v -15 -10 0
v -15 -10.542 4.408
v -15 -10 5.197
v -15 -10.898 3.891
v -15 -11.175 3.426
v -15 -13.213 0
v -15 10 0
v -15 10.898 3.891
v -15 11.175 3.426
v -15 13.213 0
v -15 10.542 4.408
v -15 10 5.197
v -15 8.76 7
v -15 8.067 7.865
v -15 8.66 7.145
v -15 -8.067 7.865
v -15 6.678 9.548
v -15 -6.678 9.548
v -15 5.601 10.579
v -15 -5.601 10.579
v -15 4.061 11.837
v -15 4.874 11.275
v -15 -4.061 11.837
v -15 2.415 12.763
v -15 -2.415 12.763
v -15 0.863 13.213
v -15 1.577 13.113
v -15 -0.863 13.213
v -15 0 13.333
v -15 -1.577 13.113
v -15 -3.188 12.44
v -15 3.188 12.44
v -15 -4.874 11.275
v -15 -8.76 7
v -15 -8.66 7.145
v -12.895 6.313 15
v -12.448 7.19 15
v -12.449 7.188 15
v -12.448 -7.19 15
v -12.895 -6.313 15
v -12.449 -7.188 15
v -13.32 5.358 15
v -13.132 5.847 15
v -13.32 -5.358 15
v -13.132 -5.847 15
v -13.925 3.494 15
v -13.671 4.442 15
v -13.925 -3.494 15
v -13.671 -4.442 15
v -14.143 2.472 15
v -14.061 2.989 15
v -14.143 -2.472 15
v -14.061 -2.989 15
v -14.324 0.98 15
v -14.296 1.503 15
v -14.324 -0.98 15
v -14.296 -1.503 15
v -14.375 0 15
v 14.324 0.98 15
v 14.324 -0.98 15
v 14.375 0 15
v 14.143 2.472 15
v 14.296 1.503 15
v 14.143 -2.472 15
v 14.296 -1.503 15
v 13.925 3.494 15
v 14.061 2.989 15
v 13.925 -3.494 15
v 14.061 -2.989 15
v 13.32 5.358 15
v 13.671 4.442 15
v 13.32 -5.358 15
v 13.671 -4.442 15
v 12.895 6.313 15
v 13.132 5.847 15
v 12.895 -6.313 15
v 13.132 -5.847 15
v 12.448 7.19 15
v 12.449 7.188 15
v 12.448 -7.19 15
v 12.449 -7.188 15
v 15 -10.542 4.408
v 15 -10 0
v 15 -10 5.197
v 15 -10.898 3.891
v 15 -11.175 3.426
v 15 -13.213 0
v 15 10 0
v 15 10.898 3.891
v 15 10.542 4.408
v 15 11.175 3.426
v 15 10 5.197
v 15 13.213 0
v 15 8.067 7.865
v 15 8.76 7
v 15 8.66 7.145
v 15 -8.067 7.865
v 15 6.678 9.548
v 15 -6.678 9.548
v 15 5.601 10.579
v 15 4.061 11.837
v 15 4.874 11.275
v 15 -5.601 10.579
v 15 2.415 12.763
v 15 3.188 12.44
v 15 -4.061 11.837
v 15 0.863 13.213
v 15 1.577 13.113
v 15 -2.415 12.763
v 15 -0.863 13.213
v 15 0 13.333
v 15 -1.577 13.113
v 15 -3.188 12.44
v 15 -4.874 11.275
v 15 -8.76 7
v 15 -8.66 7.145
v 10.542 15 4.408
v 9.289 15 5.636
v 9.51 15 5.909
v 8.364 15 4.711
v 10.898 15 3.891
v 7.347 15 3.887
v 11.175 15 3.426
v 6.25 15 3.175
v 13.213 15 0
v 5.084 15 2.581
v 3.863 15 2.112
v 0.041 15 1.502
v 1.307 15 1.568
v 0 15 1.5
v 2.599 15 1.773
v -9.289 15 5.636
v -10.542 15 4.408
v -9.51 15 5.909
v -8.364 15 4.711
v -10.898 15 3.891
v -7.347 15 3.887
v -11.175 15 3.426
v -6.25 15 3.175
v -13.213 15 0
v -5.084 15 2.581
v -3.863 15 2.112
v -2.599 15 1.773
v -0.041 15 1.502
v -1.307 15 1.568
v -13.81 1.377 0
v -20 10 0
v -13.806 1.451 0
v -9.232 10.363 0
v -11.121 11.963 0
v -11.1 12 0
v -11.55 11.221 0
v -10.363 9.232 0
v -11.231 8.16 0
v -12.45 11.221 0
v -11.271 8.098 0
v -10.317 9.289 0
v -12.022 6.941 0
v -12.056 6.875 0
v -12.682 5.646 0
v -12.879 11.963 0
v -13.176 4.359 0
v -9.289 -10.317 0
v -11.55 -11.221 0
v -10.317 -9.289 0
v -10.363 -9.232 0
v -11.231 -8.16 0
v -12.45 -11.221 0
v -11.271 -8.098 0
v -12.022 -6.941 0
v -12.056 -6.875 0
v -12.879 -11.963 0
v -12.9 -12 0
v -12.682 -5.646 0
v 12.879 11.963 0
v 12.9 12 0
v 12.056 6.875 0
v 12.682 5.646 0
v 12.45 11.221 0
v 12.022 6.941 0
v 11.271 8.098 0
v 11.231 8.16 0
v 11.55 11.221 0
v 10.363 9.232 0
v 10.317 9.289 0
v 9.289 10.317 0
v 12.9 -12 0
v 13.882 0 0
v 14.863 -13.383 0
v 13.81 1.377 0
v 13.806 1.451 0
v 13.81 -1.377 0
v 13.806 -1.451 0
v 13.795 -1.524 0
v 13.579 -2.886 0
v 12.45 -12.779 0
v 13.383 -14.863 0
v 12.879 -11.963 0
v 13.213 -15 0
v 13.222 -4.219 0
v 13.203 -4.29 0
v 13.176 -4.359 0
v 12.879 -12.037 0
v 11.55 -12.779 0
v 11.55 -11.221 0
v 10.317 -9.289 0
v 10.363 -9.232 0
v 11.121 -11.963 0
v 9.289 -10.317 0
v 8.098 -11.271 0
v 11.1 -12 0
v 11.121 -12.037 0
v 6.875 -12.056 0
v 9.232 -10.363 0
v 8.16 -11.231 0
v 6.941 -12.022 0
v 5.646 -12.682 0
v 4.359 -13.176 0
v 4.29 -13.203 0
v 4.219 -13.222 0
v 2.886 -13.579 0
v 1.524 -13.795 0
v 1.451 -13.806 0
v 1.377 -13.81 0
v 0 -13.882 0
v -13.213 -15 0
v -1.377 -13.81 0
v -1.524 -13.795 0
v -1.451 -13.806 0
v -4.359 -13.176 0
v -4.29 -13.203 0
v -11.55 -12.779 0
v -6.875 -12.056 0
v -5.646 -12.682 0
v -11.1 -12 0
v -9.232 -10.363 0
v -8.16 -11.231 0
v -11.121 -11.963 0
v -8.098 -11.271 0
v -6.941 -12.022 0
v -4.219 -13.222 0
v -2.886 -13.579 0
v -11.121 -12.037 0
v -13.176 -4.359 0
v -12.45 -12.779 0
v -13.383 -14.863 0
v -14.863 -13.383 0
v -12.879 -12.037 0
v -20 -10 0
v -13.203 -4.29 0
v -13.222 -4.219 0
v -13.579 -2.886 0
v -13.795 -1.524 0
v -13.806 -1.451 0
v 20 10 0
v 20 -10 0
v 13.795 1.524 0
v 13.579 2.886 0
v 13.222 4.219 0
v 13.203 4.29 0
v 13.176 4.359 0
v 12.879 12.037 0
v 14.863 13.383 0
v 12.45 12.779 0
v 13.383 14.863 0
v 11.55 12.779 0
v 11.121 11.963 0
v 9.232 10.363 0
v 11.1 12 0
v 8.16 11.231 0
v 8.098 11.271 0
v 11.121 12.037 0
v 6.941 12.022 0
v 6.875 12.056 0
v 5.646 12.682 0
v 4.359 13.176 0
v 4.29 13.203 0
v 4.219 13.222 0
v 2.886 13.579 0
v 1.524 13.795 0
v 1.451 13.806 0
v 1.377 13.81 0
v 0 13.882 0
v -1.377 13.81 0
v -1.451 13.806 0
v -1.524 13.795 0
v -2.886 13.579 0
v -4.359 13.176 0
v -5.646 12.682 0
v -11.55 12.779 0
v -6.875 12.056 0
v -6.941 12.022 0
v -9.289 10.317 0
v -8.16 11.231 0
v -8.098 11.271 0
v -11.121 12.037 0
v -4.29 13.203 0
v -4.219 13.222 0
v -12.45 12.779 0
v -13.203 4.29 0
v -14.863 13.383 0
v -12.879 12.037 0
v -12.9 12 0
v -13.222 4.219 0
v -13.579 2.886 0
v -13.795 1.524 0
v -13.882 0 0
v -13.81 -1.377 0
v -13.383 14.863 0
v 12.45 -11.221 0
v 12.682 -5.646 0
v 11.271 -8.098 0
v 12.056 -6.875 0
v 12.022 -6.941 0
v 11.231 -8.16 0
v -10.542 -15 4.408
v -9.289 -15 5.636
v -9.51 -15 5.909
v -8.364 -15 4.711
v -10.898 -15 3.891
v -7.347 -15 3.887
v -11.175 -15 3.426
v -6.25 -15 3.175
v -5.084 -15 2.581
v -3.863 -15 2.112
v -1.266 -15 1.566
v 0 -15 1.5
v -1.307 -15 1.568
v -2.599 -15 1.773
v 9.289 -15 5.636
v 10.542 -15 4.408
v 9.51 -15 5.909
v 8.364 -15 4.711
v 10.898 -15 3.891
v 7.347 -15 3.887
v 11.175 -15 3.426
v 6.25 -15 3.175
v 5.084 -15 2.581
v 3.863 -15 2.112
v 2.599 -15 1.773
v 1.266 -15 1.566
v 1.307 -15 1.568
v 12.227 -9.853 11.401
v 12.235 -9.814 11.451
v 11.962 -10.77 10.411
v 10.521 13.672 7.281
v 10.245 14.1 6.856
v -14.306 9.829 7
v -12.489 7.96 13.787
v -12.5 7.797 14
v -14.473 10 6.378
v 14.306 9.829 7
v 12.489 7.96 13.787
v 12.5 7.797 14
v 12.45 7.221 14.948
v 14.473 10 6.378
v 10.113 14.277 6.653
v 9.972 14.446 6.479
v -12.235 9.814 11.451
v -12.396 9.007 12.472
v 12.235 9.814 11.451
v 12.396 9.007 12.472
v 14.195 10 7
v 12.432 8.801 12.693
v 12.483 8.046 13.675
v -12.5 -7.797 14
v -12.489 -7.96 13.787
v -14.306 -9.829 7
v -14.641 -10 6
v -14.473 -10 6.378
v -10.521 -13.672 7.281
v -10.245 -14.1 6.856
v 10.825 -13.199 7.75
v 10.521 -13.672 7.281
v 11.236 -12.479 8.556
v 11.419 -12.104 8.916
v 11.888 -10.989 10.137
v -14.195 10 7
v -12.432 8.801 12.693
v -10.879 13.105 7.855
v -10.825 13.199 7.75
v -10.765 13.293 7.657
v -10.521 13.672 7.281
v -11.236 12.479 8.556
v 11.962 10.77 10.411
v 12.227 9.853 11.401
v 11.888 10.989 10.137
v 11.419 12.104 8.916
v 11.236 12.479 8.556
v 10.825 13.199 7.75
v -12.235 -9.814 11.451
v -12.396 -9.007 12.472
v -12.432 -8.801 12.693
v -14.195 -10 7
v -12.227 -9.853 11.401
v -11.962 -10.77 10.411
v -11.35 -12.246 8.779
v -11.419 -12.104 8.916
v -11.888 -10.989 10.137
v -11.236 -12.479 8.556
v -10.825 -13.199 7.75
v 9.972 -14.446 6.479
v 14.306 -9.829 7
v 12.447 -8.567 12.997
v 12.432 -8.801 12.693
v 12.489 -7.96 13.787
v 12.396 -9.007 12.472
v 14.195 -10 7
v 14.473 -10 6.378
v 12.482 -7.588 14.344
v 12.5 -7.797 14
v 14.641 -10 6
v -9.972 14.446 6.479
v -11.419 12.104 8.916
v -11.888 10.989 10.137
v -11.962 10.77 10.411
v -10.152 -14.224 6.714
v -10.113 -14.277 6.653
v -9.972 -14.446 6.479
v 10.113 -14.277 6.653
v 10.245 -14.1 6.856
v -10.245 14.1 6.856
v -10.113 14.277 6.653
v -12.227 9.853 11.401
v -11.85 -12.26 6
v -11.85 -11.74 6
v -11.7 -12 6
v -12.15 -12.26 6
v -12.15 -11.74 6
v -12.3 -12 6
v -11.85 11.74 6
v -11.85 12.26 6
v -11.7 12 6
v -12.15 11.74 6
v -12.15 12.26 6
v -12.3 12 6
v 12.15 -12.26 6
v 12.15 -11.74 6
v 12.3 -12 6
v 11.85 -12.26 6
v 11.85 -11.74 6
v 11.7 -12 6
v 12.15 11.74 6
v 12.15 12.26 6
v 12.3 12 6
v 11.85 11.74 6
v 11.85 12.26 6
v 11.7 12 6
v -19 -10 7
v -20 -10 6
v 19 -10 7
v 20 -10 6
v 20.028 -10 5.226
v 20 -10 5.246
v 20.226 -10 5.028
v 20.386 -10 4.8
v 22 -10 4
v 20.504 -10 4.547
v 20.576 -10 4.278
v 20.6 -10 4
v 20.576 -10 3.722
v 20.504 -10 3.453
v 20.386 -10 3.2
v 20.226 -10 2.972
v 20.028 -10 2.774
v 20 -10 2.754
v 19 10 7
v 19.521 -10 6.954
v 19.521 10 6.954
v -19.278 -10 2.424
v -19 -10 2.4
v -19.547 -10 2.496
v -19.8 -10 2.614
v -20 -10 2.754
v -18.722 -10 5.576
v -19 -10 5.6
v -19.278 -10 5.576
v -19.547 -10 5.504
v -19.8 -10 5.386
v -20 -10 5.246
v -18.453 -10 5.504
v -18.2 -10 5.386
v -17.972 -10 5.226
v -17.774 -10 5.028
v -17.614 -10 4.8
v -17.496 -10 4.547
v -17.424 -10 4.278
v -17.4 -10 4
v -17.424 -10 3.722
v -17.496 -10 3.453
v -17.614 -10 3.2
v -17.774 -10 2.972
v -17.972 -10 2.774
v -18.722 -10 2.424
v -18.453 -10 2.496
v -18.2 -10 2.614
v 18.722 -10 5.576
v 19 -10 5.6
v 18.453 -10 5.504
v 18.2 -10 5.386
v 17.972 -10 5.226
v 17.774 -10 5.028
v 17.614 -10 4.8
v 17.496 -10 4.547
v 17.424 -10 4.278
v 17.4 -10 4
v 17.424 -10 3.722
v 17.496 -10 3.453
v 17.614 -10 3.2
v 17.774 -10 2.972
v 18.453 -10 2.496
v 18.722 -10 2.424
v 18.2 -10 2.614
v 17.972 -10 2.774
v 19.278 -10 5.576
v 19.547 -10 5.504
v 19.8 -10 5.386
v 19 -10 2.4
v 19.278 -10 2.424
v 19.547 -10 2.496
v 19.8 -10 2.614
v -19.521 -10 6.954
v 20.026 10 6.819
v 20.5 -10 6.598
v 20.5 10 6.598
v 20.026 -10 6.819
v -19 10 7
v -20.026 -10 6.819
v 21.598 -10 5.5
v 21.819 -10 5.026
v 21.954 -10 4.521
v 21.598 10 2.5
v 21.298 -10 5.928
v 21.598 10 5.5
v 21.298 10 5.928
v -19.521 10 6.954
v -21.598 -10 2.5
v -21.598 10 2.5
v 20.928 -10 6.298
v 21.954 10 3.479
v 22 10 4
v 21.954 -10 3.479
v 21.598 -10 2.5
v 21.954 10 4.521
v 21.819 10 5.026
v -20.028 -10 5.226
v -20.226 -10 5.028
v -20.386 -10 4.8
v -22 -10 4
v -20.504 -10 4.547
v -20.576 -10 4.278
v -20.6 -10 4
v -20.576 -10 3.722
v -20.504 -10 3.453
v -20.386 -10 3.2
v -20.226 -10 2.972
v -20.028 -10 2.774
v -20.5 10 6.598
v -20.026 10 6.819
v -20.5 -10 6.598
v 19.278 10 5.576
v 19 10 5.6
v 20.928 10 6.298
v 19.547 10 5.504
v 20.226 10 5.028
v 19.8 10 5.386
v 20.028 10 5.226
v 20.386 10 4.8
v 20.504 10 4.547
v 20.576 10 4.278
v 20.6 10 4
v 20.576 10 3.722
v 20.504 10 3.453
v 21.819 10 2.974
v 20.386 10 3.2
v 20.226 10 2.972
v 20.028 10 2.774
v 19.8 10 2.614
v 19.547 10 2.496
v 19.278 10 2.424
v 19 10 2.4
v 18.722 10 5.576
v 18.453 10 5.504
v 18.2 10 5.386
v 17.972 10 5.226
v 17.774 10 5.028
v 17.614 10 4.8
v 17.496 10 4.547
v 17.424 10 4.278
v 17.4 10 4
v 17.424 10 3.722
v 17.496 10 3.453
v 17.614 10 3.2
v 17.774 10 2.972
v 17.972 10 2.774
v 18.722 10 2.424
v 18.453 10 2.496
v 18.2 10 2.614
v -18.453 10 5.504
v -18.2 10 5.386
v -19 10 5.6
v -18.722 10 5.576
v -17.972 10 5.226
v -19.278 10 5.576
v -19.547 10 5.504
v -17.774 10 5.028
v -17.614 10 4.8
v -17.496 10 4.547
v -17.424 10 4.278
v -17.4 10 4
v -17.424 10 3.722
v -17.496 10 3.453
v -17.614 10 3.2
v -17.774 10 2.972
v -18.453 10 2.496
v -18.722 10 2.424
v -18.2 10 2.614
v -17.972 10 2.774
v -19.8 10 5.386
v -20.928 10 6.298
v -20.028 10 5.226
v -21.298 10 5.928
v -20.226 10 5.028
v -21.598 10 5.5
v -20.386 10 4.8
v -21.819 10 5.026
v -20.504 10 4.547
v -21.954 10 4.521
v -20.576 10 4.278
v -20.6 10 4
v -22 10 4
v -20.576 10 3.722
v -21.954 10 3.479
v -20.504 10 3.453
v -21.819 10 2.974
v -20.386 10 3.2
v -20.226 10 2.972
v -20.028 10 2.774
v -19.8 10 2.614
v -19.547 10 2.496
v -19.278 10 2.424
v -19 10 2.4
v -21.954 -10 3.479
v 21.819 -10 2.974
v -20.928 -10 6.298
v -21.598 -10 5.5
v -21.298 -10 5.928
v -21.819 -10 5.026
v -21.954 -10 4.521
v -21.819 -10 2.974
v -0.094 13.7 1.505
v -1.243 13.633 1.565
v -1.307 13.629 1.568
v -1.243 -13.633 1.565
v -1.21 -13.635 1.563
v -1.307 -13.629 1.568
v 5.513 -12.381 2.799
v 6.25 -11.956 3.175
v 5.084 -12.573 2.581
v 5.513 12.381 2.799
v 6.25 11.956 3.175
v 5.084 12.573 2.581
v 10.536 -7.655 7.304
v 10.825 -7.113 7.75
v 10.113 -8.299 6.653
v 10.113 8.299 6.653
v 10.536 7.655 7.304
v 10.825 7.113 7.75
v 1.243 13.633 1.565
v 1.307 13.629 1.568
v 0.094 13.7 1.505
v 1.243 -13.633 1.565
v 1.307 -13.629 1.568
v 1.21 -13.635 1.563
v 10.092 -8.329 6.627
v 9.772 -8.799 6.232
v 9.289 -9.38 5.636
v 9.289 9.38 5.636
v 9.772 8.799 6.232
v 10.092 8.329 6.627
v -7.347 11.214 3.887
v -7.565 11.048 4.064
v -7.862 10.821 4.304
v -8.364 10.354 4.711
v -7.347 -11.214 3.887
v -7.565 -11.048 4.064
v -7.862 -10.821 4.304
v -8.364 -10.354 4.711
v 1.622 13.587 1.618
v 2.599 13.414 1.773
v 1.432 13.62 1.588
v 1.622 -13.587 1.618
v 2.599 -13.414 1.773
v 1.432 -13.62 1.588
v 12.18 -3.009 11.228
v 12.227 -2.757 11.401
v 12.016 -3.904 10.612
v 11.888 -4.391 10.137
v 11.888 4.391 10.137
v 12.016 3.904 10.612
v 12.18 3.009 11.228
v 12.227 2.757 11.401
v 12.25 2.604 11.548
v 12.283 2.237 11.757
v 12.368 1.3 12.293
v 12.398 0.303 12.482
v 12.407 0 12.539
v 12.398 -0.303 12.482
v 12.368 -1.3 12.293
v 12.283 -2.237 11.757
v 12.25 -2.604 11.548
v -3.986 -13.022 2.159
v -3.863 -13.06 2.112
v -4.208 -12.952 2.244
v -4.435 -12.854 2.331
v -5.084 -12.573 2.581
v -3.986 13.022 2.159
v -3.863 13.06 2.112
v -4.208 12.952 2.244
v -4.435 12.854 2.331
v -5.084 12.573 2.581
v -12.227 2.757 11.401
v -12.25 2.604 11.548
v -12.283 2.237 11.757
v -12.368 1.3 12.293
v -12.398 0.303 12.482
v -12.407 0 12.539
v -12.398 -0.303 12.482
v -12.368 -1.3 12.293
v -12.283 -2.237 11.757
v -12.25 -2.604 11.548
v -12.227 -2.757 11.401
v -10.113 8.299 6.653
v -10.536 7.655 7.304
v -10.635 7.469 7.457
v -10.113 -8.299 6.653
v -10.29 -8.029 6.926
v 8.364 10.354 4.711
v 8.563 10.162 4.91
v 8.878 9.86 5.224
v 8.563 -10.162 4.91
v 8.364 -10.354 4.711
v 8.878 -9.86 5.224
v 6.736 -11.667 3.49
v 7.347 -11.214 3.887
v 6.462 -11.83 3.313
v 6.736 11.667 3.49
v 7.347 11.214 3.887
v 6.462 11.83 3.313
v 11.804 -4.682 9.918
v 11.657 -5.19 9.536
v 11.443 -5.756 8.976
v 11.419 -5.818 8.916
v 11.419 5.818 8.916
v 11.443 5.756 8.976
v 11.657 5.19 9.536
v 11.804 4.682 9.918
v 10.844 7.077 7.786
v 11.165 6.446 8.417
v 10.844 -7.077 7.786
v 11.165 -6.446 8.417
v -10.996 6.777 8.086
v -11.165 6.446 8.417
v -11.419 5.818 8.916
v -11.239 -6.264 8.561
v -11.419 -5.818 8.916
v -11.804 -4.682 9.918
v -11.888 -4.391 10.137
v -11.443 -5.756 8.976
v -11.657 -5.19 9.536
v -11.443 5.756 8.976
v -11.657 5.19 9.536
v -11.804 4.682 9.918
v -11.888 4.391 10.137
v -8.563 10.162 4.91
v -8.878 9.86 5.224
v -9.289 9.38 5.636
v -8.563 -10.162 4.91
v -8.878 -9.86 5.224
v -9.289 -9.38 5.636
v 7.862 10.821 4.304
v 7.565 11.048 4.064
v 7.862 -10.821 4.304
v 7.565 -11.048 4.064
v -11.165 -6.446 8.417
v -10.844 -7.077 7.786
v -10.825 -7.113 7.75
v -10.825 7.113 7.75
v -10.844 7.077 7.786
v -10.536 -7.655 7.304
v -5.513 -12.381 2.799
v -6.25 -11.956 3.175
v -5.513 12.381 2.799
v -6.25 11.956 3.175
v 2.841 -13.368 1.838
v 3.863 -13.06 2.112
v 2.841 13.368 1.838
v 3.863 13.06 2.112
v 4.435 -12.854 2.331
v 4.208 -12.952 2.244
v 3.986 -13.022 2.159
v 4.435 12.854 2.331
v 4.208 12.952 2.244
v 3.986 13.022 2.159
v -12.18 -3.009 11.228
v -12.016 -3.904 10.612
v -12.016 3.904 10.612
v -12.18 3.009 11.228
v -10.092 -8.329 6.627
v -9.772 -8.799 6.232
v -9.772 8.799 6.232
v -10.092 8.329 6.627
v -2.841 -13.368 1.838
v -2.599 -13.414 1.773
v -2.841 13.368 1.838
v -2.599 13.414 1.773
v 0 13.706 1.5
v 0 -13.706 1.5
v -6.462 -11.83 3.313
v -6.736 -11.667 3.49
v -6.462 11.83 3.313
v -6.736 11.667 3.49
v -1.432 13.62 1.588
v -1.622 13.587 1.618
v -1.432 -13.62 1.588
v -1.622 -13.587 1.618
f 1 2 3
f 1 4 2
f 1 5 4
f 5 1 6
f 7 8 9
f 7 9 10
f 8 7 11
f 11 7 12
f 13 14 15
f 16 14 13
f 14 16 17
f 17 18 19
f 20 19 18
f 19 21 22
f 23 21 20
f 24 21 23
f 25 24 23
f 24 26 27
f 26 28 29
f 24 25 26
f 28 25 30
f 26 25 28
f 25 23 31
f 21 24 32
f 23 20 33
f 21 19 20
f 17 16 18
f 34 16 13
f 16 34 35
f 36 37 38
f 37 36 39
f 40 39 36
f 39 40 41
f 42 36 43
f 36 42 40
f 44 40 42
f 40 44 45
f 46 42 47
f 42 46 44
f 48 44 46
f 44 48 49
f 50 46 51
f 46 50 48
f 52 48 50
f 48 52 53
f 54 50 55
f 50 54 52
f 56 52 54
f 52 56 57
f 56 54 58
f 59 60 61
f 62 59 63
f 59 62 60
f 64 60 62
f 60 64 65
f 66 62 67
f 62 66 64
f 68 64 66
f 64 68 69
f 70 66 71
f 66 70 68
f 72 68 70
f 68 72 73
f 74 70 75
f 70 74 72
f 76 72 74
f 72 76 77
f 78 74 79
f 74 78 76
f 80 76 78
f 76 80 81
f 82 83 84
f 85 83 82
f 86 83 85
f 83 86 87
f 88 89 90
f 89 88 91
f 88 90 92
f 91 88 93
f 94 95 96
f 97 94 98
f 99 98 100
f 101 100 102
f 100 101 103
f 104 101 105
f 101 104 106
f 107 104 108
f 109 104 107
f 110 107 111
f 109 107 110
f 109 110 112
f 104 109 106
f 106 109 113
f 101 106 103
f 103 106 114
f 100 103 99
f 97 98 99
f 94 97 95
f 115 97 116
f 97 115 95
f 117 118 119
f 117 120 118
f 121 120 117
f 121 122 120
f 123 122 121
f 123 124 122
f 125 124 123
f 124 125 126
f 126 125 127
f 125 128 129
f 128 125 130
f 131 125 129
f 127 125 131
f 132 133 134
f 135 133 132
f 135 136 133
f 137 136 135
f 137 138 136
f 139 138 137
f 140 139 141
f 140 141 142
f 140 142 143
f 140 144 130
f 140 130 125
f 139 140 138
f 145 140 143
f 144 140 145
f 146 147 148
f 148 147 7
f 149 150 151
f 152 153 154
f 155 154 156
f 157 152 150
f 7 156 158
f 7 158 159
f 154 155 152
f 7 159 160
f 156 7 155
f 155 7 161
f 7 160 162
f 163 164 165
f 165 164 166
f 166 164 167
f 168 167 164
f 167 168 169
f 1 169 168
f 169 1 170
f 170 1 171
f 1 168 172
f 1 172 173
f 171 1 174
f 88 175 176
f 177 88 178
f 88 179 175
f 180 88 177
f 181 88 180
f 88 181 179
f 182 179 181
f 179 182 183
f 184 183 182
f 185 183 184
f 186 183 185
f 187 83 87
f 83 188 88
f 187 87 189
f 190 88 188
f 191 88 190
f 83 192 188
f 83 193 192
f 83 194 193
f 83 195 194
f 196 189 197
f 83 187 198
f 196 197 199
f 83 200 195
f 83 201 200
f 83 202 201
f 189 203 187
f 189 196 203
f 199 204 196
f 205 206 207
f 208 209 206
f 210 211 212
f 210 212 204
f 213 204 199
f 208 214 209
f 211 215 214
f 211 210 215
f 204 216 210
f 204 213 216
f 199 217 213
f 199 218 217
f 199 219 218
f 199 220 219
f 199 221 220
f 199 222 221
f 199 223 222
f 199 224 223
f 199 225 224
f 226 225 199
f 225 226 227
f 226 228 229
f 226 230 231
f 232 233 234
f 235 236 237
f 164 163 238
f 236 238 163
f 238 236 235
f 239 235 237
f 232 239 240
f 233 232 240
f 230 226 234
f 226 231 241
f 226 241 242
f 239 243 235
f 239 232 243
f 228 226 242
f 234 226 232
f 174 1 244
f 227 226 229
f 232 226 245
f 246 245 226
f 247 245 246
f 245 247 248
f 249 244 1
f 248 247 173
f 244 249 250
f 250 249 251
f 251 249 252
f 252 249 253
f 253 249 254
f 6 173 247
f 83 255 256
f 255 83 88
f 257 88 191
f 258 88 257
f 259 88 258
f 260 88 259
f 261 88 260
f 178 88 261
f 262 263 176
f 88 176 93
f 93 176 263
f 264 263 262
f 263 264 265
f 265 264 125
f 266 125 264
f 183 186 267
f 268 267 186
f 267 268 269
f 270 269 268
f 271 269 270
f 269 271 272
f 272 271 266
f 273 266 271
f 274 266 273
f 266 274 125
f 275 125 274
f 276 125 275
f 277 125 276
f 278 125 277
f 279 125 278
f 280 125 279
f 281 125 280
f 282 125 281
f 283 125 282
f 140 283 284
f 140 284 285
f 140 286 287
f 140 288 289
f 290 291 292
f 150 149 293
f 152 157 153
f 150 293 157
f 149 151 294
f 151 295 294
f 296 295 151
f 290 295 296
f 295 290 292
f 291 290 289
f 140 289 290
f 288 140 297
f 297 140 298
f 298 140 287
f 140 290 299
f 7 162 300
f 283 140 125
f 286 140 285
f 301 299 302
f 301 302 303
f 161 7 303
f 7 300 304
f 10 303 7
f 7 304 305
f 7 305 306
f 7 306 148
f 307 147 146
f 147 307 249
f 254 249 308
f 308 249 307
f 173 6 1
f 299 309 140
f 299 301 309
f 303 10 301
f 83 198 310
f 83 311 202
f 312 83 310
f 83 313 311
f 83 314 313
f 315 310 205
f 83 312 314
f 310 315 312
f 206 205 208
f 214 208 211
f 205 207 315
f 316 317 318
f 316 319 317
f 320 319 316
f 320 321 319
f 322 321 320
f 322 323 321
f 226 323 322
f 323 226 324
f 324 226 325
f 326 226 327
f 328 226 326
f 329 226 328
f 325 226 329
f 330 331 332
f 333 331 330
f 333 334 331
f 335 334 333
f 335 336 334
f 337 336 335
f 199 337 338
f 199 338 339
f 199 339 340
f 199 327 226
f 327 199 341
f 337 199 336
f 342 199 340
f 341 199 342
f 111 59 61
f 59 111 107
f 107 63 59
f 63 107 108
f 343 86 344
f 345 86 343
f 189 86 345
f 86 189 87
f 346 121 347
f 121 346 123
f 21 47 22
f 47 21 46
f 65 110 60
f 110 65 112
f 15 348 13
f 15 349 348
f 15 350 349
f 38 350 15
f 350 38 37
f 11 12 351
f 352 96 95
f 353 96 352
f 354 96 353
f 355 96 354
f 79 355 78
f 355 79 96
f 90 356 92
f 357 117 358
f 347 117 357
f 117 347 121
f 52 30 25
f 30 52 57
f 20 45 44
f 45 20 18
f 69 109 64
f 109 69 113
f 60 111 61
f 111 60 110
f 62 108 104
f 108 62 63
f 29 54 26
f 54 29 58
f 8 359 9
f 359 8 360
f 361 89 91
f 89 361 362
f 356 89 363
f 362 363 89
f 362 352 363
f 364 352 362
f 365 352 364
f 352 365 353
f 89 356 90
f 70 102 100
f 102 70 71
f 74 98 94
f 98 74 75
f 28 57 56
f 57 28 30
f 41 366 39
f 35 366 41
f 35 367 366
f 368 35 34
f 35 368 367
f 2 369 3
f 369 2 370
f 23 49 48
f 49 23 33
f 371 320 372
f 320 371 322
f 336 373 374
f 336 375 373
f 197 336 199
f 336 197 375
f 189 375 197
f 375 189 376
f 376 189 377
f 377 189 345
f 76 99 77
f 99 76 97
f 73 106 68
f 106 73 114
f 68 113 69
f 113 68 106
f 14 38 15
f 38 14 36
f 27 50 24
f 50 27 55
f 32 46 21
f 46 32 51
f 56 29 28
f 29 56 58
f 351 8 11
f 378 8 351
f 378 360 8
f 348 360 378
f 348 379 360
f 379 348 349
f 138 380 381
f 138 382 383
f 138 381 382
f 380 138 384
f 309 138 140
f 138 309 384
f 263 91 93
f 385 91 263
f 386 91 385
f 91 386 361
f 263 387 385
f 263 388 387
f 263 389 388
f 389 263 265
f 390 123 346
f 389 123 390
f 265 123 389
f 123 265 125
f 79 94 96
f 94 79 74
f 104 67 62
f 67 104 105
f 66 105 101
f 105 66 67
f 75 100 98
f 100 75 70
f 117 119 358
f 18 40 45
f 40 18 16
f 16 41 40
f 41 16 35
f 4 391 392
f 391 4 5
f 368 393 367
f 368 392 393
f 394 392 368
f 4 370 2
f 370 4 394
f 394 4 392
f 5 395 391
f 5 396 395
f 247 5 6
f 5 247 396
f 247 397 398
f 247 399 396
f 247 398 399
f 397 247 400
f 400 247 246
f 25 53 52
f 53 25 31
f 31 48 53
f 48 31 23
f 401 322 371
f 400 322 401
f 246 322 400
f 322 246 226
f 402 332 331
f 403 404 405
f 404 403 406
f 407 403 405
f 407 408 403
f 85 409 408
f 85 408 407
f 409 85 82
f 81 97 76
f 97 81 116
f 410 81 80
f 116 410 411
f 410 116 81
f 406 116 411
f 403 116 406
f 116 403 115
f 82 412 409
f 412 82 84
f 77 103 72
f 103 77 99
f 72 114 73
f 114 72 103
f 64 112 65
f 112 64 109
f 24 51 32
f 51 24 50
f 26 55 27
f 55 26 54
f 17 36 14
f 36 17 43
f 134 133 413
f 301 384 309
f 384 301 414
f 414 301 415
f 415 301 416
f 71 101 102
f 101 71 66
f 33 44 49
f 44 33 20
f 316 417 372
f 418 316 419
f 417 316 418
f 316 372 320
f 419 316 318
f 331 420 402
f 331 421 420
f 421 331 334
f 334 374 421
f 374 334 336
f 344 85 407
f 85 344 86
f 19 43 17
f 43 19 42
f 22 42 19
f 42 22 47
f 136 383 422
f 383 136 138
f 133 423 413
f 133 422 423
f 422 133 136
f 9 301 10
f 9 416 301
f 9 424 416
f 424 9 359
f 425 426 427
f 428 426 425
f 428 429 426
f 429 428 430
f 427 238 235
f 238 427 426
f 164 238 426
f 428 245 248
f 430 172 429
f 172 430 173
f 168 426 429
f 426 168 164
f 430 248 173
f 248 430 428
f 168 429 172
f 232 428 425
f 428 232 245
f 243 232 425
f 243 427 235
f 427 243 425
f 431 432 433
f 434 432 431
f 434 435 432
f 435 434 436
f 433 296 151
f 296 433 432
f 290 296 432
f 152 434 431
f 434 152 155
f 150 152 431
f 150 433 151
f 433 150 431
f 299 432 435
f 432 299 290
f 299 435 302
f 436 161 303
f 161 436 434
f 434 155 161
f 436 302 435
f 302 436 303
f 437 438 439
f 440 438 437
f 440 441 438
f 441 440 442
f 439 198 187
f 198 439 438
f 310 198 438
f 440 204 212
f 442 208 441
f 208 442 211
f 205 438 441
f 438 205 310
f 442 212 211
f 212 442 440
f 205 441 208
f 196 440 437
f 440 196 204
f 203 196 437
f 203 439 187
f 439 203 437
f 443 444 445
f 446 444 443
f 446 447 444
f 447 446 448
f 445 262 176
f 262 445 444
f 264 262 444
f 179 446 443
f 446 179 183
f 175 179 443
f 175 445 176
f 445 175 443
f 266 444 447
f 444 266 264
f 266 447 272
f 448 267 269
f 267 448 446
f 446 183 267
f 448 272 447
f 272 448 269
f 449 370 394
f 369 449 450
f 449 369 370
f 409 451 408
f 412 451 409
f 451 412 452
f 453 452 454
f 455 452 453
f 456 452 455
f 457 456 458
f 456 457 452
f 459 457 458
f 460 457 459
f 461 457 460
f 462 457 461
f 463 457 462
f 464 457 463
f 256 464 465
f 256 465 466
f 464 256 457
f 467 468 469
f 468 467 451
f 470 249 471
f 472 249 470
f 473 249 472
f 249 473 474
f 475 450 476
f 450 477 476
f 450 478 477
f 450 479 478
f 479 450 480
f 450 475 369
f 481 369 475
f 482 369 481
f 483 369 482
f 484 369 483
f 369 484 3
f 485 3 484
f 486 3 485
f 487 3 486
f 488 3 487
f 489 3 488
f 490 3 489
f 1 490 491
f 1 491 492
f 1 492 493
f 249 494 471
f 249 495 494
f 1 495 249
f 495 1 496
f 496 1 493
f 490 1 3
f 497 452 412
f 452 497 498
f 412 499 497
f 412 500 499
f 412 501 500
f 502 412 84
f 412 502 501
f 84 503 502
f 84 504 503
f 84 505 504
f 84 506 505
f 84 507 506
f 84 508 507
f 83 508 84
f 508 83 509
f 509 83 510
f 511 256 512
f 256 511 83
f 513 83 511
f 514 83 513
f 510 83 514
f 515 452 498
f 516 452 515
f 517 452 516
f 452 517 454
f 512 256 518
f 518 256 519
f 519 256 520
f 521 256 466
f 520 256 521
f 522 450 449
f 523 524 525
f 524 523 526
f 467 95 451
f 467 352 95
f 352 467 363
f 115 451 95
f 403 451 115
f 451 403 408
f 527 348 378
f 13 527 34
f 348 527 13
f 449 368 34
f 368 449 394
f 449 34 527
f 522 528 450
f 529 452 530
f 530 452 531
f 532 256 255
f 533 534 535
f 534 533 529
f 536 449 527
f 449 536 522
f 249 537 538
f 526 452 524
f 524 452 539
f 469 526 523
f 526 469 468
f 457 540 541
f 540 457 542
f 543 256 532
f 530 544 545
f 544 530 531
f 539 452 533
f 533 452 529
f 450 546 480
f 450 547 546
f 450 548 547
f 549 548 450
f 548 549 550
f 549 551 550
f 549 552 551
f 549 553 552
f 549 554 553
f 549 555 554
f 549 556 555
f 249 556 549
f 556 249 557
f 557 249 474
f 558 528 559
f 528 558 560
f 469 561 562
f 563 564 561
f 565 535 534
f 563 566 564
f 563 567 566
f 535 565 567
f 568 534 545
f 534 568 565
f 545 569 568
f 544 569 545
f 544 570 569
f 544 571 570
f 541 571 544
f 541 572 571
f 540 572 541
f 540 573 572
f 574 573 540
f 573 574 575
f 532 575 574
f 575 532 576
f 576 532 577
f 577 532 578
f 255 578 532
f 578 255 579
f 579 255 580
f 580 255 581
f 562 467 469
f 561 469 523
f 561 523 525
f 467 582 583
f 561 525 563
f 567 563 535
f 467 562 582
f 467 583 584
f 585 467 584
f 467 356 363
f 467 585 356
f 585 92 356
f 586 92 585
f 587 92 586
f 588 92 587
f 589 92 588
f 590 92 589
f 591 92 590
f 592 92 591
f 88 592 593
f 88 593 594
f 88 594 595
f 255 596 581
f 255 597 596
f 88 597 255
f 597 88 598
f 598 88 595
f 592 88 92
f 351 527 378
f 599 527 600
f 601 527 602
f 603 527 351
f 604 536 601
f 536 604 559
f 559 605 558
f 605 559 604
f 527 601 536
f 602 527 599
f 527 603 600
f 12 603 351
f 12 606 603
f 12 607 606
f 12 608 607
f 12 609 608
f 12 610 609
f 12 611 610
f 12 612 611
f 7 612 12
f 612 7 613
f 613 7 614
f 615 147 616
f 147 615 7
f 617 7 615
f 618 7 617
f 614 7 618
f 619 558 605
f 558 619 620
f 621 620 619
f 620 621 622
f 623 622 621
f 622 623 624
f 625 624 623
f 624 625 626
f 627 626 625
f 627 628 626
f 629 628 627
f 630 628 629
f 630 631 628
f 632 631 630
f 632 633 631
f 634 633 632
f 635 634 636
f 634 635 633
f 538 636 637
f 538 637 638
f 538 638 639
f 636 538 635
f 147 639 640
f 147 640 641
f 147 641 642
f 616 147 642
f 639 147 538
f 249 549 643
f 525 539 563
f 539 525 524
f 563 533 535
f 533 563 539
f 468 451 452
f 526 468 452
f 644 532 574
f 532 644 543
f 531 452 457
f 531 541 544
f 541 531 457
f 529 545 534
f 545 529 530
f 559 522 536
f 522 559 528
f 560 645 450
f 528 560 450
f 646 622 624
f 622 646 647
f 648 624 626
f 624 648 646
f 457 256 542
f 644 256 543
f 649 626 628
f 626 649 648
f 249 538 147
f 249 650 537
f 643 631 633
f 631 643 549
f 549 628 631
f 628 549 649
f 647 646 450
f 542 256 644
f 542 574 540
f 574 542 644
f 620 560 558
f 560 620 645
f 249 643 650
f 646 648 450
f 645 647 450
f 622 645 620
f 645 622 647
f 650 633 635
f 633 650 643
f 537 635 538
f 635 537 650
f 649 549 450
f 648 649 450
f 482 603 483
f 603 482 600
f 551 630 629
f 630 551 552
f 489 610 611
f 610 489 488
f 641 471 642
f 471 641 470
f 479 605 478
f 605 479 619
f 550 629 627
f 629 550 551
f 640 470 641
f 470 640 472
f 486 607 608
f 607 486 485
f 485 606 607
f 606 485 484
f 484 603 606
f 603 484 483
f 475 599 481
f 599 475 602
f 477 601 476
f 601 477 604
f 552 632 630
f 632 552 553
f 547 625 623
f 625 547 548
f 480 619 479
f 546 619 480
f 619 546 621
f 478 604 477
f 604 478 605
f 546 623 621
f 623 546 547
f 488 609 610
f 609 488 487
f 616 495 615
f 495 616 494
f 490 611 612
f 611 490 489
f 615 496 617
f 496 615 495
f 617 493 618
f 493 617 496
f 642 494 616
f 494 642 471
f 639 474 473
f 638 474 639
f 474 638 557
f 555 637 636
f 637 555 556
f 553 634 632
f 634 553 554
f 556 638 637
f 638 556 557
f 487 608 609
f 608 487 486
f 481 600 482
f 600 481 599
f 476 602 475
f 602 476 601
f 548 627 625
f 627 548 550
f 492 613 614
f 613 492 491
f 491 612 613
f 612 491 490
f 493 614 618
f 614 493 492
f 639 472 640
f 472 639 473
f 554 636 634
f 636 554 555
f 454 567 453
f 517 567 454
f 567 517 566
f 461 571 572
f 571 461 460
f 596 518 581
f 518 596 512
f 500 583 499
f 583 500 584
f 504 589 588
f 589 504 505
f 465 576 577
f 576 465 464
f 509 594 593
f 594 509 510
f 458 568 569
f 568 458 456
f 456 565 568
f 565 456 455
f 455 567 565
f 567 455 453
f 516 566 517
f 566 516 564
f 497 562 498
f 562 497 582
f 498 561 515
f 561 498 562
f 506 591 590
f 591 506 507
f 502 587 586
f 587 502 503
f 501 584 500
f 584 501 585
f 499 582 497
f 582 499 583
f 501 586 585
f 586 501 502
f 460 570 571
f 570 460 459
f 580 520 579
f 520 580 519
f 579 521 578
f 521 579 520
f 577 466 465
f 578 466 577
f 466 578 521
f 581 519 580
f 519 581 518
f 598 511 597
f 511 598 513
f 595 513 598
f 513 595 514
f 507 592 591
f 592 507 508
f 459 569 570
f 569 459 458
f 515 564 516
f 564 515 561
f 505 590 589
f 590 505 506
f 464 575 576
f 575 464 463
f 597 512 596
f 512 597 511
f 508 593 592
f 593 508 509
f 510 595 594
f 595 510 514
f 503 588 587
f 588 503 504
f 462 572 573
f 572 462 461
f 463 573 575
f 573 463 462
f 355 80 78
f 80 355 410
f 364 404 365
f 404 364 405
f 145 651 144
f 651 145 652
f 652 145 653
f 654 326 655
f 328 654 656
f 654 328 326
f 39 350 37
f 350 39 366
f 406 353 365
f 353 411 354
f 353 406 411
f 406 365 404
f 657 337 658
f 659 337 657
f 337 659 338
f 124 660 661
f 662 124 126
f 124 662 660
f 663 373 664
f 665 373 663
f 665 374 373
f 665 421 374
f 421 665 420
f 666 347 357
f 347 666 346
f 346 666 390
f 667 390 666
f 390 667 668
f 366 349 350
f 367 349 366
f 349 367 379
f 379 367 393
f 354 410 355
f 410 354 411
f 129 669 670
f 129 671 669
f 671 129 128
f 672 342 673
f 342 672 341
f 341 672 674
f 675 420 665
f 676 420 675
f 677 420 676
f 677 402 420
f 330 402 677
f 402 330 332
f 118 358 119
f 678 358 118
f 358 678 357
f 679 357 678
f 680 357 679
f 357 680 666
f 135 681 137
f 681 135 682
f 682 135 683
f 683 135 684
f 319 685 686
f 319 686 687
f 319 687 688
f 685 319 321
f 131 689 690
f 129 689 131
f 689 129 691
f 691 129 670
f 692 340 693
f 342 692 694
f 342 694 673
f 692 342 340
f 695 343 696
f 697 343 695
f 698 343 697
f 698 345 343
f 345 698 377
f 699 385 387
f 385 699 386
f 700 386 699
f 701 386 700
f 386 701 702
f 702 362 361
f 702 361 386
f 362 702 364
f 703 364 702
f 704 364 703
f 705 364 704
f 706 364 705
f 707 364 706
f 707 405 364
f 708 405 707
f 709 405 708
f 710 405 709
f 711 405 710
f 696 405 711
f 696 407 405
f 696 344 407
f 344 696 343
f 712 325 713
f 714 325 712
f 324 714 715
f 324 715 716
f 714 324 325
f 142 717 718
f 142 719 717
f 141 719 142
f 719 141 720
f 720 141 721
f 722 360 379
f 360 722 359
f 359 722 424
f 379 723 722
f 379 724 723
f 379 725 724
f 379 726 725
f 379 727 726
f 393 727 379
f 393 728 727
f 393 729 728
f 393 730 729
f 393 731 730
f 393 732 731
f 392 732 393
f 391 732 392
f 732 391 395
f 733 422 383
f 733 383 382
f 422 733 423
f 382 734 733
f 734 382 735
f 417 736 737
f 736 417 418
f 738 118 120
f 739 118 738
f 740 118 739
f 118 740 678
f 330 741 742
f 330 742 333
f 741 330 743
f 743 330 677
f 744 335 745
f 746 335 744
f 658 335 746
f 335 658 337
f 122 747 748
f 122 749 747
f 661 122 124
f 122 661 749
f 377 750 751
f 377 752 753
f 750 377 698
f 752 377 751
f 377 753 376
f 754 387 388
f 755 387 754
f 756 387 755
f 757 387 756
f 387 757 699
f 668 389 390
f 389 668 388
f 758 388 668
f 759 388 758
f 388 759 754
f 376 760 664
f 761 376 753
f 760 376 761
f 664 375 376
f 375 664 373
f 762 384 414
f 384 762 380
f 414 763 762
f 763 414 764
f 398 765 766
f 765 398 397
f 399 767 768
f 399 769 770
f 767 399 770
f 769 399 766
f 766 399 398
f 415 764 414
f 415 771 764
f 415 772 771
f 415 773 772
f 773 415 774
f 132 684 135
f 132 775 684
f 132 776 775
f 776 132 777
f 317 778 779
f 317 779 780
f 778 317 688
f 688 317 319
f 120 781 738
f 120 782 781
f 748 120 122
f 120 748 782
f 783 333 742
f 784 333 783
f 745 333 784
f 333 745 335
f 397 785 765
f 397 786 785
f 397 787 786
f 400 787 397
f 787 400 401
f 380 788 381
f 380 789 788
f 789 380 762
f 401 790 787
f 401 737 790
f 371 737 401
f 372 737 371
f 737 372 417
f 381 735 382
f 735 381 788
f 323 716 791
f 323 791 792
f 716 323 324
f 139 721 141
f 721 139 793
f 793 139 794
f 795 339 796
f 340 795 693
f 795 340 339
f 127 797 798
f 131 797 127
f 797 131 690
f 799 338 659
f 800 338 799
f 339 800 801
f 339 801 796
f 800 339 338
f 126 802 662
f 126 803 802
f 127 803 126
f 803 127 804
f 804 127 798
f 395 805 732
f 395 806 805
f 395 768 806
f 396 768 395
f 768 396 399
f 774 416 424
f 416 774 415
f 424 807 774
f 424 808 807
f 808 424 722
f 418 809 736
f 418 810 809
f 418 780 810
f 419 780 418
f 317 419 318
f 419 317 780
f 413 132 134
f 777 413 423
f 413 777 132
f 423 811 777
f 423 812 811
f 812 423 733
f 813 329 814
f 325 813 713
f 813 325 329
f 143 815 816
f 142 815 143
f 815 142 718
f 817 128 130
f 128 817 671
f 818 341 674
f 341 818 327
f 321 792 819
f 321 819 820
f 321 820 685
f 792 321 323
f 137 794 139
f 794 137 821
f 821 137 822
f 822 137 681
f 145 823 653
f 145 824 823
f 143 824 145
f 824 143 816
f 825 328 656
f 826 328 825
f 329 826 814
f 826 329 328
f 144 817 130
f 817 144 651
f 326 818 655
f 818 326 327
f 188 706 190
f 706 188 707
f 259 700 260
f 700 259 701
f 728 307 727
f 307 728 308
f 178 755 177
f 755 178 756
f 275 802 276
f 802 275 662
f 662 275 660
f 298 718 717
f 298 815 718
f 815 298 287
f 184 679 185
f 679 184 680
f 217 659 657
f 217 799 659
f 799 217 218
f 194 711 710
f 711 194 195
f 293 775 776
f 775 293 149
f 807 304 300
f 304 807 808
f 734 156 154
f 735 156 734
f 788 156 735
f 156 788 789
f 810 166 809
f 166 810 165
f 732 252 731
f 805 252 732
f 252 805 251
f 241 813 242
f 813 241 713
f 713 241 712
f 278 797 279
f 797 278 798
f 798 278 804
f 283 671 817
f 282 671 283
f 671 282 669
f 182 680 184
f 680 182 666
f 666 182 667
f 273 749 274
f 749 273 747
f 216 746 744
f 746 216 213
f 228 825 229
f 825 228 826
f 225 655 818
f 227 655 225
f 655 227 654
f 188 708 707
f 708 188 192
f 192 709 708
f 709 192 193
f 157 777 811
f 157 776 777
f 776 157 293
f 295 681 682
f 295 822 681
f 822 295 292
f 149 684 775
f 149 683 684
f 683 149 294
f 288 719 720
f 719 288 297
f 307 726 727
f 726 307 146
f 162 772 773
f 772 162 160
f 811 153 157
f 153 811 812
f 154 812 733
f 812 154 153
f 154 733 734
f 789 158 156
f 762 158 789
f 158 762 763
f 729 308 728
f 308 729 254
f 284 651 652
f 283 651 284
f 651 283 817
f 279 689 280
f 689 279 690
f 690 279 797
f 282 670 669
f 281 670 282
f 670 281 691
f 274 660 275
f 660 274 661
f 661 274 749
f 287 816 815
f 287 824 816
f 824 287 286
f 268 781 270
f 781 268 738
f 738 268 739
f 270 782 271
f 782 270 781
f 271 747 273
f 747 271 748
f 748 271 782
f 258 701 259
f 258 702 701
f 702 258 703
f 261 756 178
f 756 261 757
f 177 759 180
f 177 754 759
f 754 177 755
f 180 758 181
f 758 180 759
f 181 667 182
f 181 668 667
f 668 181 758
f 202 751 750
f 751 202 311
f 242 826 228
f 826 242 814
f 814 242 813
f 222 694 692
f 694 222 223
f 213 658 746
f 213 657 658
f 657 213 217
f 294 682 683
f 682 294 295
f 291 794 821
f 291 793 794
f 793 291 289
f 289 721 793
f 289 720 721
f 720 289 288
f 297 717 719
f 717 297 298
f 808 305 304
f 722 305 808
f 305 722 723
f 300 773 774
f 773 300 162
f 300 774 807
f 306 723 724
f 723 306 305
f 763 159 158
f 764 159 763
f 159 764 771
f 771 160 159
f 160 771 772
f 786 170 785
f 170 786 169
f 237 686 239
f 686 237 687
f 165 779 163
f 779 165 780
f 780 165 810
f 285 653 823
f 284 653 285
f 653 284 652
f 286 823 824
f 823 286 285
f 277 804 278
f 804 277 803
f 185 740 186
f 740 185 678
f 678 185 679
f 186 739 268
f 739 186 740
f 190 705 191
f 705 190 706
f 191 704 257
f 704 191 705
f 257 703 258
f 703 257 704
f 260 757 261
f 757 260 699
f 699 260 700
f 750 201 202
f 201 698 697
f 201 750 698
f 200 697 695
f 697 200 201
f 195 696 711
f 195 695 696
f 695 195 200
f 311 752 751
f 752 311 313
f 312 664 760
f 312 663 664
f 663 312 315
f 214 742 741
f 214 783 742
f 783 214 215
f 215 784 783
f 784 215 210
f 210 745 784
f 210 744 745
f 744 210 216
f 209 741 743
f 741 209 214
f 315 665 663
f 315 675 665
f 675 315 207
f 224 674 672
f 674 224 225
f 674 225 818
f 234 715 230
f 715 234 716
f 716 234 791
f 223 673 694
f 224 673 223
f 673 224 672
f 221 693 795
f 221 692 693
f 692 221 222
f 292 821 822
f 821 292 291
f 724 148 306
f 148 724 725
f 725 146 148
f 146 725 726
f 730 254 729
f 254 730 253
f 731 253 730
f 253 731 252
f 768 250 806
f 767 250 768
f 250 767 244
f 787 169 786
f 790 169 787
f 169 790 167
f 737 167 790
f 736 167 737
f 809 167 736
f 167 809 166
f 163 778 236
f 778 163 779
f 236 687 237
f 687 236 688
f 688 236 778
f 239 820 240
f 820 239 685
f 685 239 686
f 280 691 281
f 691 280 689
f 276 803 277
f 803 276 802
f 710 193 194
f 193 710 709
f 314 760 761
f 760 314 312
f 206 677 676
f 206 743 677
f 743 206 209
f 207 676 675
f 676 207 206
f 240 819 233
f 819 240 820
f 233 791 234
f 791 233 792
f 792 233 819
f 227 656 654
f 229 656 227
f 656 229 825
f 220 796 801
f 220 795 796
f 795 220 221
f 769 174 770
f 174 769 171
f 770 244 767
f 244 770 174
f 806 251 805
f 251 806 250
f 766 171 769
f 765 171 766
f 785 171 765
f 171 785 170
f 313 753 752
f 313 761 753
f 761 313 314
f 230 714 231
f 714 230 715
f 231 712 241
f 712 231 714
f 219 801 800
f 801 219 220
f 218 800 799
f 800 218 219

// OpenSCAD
$fn=36;
difference()
{
	// Solids
	union()
	{
		// effector mount
		hull()
		{
			translate([-20,-10,0]) cube( [40,20,6] );
			rotate([90,0,0]) for( x=[-19,19] ) 
				translate([x,4,-10]) cylinder( r=3,h=20 );
		}

		// duct
		intersection()
		{
			translate([-15,-15,0]) cube( [30,30,15] );
			cylinder( r1=20, r2=12.5, h=20, $fn=60 );
		}
	}


	// effector mount holes
	rotate([90,0,0]) for( x=[-19,19]) 
		translate([x,4,-16]) cylinder( r=1.6,h=32 );

	// extruder cutout
	rotate([90,0,0]) translate([-0,14,-16]) cylinder( r=12.5,h=32,$fn=60 );

	// fan flow cutout
	translate([0,0,-1]) cylinder( r1=14,r2=12,h=17, $fn=60 );

	// fan mount holes
	for( x=[-12,12] ) for( y=[-12,12] ) 
		translate([x,y,-1]) cylinder(r1=1,r2=0.3,h=7, $fn=6);
}
